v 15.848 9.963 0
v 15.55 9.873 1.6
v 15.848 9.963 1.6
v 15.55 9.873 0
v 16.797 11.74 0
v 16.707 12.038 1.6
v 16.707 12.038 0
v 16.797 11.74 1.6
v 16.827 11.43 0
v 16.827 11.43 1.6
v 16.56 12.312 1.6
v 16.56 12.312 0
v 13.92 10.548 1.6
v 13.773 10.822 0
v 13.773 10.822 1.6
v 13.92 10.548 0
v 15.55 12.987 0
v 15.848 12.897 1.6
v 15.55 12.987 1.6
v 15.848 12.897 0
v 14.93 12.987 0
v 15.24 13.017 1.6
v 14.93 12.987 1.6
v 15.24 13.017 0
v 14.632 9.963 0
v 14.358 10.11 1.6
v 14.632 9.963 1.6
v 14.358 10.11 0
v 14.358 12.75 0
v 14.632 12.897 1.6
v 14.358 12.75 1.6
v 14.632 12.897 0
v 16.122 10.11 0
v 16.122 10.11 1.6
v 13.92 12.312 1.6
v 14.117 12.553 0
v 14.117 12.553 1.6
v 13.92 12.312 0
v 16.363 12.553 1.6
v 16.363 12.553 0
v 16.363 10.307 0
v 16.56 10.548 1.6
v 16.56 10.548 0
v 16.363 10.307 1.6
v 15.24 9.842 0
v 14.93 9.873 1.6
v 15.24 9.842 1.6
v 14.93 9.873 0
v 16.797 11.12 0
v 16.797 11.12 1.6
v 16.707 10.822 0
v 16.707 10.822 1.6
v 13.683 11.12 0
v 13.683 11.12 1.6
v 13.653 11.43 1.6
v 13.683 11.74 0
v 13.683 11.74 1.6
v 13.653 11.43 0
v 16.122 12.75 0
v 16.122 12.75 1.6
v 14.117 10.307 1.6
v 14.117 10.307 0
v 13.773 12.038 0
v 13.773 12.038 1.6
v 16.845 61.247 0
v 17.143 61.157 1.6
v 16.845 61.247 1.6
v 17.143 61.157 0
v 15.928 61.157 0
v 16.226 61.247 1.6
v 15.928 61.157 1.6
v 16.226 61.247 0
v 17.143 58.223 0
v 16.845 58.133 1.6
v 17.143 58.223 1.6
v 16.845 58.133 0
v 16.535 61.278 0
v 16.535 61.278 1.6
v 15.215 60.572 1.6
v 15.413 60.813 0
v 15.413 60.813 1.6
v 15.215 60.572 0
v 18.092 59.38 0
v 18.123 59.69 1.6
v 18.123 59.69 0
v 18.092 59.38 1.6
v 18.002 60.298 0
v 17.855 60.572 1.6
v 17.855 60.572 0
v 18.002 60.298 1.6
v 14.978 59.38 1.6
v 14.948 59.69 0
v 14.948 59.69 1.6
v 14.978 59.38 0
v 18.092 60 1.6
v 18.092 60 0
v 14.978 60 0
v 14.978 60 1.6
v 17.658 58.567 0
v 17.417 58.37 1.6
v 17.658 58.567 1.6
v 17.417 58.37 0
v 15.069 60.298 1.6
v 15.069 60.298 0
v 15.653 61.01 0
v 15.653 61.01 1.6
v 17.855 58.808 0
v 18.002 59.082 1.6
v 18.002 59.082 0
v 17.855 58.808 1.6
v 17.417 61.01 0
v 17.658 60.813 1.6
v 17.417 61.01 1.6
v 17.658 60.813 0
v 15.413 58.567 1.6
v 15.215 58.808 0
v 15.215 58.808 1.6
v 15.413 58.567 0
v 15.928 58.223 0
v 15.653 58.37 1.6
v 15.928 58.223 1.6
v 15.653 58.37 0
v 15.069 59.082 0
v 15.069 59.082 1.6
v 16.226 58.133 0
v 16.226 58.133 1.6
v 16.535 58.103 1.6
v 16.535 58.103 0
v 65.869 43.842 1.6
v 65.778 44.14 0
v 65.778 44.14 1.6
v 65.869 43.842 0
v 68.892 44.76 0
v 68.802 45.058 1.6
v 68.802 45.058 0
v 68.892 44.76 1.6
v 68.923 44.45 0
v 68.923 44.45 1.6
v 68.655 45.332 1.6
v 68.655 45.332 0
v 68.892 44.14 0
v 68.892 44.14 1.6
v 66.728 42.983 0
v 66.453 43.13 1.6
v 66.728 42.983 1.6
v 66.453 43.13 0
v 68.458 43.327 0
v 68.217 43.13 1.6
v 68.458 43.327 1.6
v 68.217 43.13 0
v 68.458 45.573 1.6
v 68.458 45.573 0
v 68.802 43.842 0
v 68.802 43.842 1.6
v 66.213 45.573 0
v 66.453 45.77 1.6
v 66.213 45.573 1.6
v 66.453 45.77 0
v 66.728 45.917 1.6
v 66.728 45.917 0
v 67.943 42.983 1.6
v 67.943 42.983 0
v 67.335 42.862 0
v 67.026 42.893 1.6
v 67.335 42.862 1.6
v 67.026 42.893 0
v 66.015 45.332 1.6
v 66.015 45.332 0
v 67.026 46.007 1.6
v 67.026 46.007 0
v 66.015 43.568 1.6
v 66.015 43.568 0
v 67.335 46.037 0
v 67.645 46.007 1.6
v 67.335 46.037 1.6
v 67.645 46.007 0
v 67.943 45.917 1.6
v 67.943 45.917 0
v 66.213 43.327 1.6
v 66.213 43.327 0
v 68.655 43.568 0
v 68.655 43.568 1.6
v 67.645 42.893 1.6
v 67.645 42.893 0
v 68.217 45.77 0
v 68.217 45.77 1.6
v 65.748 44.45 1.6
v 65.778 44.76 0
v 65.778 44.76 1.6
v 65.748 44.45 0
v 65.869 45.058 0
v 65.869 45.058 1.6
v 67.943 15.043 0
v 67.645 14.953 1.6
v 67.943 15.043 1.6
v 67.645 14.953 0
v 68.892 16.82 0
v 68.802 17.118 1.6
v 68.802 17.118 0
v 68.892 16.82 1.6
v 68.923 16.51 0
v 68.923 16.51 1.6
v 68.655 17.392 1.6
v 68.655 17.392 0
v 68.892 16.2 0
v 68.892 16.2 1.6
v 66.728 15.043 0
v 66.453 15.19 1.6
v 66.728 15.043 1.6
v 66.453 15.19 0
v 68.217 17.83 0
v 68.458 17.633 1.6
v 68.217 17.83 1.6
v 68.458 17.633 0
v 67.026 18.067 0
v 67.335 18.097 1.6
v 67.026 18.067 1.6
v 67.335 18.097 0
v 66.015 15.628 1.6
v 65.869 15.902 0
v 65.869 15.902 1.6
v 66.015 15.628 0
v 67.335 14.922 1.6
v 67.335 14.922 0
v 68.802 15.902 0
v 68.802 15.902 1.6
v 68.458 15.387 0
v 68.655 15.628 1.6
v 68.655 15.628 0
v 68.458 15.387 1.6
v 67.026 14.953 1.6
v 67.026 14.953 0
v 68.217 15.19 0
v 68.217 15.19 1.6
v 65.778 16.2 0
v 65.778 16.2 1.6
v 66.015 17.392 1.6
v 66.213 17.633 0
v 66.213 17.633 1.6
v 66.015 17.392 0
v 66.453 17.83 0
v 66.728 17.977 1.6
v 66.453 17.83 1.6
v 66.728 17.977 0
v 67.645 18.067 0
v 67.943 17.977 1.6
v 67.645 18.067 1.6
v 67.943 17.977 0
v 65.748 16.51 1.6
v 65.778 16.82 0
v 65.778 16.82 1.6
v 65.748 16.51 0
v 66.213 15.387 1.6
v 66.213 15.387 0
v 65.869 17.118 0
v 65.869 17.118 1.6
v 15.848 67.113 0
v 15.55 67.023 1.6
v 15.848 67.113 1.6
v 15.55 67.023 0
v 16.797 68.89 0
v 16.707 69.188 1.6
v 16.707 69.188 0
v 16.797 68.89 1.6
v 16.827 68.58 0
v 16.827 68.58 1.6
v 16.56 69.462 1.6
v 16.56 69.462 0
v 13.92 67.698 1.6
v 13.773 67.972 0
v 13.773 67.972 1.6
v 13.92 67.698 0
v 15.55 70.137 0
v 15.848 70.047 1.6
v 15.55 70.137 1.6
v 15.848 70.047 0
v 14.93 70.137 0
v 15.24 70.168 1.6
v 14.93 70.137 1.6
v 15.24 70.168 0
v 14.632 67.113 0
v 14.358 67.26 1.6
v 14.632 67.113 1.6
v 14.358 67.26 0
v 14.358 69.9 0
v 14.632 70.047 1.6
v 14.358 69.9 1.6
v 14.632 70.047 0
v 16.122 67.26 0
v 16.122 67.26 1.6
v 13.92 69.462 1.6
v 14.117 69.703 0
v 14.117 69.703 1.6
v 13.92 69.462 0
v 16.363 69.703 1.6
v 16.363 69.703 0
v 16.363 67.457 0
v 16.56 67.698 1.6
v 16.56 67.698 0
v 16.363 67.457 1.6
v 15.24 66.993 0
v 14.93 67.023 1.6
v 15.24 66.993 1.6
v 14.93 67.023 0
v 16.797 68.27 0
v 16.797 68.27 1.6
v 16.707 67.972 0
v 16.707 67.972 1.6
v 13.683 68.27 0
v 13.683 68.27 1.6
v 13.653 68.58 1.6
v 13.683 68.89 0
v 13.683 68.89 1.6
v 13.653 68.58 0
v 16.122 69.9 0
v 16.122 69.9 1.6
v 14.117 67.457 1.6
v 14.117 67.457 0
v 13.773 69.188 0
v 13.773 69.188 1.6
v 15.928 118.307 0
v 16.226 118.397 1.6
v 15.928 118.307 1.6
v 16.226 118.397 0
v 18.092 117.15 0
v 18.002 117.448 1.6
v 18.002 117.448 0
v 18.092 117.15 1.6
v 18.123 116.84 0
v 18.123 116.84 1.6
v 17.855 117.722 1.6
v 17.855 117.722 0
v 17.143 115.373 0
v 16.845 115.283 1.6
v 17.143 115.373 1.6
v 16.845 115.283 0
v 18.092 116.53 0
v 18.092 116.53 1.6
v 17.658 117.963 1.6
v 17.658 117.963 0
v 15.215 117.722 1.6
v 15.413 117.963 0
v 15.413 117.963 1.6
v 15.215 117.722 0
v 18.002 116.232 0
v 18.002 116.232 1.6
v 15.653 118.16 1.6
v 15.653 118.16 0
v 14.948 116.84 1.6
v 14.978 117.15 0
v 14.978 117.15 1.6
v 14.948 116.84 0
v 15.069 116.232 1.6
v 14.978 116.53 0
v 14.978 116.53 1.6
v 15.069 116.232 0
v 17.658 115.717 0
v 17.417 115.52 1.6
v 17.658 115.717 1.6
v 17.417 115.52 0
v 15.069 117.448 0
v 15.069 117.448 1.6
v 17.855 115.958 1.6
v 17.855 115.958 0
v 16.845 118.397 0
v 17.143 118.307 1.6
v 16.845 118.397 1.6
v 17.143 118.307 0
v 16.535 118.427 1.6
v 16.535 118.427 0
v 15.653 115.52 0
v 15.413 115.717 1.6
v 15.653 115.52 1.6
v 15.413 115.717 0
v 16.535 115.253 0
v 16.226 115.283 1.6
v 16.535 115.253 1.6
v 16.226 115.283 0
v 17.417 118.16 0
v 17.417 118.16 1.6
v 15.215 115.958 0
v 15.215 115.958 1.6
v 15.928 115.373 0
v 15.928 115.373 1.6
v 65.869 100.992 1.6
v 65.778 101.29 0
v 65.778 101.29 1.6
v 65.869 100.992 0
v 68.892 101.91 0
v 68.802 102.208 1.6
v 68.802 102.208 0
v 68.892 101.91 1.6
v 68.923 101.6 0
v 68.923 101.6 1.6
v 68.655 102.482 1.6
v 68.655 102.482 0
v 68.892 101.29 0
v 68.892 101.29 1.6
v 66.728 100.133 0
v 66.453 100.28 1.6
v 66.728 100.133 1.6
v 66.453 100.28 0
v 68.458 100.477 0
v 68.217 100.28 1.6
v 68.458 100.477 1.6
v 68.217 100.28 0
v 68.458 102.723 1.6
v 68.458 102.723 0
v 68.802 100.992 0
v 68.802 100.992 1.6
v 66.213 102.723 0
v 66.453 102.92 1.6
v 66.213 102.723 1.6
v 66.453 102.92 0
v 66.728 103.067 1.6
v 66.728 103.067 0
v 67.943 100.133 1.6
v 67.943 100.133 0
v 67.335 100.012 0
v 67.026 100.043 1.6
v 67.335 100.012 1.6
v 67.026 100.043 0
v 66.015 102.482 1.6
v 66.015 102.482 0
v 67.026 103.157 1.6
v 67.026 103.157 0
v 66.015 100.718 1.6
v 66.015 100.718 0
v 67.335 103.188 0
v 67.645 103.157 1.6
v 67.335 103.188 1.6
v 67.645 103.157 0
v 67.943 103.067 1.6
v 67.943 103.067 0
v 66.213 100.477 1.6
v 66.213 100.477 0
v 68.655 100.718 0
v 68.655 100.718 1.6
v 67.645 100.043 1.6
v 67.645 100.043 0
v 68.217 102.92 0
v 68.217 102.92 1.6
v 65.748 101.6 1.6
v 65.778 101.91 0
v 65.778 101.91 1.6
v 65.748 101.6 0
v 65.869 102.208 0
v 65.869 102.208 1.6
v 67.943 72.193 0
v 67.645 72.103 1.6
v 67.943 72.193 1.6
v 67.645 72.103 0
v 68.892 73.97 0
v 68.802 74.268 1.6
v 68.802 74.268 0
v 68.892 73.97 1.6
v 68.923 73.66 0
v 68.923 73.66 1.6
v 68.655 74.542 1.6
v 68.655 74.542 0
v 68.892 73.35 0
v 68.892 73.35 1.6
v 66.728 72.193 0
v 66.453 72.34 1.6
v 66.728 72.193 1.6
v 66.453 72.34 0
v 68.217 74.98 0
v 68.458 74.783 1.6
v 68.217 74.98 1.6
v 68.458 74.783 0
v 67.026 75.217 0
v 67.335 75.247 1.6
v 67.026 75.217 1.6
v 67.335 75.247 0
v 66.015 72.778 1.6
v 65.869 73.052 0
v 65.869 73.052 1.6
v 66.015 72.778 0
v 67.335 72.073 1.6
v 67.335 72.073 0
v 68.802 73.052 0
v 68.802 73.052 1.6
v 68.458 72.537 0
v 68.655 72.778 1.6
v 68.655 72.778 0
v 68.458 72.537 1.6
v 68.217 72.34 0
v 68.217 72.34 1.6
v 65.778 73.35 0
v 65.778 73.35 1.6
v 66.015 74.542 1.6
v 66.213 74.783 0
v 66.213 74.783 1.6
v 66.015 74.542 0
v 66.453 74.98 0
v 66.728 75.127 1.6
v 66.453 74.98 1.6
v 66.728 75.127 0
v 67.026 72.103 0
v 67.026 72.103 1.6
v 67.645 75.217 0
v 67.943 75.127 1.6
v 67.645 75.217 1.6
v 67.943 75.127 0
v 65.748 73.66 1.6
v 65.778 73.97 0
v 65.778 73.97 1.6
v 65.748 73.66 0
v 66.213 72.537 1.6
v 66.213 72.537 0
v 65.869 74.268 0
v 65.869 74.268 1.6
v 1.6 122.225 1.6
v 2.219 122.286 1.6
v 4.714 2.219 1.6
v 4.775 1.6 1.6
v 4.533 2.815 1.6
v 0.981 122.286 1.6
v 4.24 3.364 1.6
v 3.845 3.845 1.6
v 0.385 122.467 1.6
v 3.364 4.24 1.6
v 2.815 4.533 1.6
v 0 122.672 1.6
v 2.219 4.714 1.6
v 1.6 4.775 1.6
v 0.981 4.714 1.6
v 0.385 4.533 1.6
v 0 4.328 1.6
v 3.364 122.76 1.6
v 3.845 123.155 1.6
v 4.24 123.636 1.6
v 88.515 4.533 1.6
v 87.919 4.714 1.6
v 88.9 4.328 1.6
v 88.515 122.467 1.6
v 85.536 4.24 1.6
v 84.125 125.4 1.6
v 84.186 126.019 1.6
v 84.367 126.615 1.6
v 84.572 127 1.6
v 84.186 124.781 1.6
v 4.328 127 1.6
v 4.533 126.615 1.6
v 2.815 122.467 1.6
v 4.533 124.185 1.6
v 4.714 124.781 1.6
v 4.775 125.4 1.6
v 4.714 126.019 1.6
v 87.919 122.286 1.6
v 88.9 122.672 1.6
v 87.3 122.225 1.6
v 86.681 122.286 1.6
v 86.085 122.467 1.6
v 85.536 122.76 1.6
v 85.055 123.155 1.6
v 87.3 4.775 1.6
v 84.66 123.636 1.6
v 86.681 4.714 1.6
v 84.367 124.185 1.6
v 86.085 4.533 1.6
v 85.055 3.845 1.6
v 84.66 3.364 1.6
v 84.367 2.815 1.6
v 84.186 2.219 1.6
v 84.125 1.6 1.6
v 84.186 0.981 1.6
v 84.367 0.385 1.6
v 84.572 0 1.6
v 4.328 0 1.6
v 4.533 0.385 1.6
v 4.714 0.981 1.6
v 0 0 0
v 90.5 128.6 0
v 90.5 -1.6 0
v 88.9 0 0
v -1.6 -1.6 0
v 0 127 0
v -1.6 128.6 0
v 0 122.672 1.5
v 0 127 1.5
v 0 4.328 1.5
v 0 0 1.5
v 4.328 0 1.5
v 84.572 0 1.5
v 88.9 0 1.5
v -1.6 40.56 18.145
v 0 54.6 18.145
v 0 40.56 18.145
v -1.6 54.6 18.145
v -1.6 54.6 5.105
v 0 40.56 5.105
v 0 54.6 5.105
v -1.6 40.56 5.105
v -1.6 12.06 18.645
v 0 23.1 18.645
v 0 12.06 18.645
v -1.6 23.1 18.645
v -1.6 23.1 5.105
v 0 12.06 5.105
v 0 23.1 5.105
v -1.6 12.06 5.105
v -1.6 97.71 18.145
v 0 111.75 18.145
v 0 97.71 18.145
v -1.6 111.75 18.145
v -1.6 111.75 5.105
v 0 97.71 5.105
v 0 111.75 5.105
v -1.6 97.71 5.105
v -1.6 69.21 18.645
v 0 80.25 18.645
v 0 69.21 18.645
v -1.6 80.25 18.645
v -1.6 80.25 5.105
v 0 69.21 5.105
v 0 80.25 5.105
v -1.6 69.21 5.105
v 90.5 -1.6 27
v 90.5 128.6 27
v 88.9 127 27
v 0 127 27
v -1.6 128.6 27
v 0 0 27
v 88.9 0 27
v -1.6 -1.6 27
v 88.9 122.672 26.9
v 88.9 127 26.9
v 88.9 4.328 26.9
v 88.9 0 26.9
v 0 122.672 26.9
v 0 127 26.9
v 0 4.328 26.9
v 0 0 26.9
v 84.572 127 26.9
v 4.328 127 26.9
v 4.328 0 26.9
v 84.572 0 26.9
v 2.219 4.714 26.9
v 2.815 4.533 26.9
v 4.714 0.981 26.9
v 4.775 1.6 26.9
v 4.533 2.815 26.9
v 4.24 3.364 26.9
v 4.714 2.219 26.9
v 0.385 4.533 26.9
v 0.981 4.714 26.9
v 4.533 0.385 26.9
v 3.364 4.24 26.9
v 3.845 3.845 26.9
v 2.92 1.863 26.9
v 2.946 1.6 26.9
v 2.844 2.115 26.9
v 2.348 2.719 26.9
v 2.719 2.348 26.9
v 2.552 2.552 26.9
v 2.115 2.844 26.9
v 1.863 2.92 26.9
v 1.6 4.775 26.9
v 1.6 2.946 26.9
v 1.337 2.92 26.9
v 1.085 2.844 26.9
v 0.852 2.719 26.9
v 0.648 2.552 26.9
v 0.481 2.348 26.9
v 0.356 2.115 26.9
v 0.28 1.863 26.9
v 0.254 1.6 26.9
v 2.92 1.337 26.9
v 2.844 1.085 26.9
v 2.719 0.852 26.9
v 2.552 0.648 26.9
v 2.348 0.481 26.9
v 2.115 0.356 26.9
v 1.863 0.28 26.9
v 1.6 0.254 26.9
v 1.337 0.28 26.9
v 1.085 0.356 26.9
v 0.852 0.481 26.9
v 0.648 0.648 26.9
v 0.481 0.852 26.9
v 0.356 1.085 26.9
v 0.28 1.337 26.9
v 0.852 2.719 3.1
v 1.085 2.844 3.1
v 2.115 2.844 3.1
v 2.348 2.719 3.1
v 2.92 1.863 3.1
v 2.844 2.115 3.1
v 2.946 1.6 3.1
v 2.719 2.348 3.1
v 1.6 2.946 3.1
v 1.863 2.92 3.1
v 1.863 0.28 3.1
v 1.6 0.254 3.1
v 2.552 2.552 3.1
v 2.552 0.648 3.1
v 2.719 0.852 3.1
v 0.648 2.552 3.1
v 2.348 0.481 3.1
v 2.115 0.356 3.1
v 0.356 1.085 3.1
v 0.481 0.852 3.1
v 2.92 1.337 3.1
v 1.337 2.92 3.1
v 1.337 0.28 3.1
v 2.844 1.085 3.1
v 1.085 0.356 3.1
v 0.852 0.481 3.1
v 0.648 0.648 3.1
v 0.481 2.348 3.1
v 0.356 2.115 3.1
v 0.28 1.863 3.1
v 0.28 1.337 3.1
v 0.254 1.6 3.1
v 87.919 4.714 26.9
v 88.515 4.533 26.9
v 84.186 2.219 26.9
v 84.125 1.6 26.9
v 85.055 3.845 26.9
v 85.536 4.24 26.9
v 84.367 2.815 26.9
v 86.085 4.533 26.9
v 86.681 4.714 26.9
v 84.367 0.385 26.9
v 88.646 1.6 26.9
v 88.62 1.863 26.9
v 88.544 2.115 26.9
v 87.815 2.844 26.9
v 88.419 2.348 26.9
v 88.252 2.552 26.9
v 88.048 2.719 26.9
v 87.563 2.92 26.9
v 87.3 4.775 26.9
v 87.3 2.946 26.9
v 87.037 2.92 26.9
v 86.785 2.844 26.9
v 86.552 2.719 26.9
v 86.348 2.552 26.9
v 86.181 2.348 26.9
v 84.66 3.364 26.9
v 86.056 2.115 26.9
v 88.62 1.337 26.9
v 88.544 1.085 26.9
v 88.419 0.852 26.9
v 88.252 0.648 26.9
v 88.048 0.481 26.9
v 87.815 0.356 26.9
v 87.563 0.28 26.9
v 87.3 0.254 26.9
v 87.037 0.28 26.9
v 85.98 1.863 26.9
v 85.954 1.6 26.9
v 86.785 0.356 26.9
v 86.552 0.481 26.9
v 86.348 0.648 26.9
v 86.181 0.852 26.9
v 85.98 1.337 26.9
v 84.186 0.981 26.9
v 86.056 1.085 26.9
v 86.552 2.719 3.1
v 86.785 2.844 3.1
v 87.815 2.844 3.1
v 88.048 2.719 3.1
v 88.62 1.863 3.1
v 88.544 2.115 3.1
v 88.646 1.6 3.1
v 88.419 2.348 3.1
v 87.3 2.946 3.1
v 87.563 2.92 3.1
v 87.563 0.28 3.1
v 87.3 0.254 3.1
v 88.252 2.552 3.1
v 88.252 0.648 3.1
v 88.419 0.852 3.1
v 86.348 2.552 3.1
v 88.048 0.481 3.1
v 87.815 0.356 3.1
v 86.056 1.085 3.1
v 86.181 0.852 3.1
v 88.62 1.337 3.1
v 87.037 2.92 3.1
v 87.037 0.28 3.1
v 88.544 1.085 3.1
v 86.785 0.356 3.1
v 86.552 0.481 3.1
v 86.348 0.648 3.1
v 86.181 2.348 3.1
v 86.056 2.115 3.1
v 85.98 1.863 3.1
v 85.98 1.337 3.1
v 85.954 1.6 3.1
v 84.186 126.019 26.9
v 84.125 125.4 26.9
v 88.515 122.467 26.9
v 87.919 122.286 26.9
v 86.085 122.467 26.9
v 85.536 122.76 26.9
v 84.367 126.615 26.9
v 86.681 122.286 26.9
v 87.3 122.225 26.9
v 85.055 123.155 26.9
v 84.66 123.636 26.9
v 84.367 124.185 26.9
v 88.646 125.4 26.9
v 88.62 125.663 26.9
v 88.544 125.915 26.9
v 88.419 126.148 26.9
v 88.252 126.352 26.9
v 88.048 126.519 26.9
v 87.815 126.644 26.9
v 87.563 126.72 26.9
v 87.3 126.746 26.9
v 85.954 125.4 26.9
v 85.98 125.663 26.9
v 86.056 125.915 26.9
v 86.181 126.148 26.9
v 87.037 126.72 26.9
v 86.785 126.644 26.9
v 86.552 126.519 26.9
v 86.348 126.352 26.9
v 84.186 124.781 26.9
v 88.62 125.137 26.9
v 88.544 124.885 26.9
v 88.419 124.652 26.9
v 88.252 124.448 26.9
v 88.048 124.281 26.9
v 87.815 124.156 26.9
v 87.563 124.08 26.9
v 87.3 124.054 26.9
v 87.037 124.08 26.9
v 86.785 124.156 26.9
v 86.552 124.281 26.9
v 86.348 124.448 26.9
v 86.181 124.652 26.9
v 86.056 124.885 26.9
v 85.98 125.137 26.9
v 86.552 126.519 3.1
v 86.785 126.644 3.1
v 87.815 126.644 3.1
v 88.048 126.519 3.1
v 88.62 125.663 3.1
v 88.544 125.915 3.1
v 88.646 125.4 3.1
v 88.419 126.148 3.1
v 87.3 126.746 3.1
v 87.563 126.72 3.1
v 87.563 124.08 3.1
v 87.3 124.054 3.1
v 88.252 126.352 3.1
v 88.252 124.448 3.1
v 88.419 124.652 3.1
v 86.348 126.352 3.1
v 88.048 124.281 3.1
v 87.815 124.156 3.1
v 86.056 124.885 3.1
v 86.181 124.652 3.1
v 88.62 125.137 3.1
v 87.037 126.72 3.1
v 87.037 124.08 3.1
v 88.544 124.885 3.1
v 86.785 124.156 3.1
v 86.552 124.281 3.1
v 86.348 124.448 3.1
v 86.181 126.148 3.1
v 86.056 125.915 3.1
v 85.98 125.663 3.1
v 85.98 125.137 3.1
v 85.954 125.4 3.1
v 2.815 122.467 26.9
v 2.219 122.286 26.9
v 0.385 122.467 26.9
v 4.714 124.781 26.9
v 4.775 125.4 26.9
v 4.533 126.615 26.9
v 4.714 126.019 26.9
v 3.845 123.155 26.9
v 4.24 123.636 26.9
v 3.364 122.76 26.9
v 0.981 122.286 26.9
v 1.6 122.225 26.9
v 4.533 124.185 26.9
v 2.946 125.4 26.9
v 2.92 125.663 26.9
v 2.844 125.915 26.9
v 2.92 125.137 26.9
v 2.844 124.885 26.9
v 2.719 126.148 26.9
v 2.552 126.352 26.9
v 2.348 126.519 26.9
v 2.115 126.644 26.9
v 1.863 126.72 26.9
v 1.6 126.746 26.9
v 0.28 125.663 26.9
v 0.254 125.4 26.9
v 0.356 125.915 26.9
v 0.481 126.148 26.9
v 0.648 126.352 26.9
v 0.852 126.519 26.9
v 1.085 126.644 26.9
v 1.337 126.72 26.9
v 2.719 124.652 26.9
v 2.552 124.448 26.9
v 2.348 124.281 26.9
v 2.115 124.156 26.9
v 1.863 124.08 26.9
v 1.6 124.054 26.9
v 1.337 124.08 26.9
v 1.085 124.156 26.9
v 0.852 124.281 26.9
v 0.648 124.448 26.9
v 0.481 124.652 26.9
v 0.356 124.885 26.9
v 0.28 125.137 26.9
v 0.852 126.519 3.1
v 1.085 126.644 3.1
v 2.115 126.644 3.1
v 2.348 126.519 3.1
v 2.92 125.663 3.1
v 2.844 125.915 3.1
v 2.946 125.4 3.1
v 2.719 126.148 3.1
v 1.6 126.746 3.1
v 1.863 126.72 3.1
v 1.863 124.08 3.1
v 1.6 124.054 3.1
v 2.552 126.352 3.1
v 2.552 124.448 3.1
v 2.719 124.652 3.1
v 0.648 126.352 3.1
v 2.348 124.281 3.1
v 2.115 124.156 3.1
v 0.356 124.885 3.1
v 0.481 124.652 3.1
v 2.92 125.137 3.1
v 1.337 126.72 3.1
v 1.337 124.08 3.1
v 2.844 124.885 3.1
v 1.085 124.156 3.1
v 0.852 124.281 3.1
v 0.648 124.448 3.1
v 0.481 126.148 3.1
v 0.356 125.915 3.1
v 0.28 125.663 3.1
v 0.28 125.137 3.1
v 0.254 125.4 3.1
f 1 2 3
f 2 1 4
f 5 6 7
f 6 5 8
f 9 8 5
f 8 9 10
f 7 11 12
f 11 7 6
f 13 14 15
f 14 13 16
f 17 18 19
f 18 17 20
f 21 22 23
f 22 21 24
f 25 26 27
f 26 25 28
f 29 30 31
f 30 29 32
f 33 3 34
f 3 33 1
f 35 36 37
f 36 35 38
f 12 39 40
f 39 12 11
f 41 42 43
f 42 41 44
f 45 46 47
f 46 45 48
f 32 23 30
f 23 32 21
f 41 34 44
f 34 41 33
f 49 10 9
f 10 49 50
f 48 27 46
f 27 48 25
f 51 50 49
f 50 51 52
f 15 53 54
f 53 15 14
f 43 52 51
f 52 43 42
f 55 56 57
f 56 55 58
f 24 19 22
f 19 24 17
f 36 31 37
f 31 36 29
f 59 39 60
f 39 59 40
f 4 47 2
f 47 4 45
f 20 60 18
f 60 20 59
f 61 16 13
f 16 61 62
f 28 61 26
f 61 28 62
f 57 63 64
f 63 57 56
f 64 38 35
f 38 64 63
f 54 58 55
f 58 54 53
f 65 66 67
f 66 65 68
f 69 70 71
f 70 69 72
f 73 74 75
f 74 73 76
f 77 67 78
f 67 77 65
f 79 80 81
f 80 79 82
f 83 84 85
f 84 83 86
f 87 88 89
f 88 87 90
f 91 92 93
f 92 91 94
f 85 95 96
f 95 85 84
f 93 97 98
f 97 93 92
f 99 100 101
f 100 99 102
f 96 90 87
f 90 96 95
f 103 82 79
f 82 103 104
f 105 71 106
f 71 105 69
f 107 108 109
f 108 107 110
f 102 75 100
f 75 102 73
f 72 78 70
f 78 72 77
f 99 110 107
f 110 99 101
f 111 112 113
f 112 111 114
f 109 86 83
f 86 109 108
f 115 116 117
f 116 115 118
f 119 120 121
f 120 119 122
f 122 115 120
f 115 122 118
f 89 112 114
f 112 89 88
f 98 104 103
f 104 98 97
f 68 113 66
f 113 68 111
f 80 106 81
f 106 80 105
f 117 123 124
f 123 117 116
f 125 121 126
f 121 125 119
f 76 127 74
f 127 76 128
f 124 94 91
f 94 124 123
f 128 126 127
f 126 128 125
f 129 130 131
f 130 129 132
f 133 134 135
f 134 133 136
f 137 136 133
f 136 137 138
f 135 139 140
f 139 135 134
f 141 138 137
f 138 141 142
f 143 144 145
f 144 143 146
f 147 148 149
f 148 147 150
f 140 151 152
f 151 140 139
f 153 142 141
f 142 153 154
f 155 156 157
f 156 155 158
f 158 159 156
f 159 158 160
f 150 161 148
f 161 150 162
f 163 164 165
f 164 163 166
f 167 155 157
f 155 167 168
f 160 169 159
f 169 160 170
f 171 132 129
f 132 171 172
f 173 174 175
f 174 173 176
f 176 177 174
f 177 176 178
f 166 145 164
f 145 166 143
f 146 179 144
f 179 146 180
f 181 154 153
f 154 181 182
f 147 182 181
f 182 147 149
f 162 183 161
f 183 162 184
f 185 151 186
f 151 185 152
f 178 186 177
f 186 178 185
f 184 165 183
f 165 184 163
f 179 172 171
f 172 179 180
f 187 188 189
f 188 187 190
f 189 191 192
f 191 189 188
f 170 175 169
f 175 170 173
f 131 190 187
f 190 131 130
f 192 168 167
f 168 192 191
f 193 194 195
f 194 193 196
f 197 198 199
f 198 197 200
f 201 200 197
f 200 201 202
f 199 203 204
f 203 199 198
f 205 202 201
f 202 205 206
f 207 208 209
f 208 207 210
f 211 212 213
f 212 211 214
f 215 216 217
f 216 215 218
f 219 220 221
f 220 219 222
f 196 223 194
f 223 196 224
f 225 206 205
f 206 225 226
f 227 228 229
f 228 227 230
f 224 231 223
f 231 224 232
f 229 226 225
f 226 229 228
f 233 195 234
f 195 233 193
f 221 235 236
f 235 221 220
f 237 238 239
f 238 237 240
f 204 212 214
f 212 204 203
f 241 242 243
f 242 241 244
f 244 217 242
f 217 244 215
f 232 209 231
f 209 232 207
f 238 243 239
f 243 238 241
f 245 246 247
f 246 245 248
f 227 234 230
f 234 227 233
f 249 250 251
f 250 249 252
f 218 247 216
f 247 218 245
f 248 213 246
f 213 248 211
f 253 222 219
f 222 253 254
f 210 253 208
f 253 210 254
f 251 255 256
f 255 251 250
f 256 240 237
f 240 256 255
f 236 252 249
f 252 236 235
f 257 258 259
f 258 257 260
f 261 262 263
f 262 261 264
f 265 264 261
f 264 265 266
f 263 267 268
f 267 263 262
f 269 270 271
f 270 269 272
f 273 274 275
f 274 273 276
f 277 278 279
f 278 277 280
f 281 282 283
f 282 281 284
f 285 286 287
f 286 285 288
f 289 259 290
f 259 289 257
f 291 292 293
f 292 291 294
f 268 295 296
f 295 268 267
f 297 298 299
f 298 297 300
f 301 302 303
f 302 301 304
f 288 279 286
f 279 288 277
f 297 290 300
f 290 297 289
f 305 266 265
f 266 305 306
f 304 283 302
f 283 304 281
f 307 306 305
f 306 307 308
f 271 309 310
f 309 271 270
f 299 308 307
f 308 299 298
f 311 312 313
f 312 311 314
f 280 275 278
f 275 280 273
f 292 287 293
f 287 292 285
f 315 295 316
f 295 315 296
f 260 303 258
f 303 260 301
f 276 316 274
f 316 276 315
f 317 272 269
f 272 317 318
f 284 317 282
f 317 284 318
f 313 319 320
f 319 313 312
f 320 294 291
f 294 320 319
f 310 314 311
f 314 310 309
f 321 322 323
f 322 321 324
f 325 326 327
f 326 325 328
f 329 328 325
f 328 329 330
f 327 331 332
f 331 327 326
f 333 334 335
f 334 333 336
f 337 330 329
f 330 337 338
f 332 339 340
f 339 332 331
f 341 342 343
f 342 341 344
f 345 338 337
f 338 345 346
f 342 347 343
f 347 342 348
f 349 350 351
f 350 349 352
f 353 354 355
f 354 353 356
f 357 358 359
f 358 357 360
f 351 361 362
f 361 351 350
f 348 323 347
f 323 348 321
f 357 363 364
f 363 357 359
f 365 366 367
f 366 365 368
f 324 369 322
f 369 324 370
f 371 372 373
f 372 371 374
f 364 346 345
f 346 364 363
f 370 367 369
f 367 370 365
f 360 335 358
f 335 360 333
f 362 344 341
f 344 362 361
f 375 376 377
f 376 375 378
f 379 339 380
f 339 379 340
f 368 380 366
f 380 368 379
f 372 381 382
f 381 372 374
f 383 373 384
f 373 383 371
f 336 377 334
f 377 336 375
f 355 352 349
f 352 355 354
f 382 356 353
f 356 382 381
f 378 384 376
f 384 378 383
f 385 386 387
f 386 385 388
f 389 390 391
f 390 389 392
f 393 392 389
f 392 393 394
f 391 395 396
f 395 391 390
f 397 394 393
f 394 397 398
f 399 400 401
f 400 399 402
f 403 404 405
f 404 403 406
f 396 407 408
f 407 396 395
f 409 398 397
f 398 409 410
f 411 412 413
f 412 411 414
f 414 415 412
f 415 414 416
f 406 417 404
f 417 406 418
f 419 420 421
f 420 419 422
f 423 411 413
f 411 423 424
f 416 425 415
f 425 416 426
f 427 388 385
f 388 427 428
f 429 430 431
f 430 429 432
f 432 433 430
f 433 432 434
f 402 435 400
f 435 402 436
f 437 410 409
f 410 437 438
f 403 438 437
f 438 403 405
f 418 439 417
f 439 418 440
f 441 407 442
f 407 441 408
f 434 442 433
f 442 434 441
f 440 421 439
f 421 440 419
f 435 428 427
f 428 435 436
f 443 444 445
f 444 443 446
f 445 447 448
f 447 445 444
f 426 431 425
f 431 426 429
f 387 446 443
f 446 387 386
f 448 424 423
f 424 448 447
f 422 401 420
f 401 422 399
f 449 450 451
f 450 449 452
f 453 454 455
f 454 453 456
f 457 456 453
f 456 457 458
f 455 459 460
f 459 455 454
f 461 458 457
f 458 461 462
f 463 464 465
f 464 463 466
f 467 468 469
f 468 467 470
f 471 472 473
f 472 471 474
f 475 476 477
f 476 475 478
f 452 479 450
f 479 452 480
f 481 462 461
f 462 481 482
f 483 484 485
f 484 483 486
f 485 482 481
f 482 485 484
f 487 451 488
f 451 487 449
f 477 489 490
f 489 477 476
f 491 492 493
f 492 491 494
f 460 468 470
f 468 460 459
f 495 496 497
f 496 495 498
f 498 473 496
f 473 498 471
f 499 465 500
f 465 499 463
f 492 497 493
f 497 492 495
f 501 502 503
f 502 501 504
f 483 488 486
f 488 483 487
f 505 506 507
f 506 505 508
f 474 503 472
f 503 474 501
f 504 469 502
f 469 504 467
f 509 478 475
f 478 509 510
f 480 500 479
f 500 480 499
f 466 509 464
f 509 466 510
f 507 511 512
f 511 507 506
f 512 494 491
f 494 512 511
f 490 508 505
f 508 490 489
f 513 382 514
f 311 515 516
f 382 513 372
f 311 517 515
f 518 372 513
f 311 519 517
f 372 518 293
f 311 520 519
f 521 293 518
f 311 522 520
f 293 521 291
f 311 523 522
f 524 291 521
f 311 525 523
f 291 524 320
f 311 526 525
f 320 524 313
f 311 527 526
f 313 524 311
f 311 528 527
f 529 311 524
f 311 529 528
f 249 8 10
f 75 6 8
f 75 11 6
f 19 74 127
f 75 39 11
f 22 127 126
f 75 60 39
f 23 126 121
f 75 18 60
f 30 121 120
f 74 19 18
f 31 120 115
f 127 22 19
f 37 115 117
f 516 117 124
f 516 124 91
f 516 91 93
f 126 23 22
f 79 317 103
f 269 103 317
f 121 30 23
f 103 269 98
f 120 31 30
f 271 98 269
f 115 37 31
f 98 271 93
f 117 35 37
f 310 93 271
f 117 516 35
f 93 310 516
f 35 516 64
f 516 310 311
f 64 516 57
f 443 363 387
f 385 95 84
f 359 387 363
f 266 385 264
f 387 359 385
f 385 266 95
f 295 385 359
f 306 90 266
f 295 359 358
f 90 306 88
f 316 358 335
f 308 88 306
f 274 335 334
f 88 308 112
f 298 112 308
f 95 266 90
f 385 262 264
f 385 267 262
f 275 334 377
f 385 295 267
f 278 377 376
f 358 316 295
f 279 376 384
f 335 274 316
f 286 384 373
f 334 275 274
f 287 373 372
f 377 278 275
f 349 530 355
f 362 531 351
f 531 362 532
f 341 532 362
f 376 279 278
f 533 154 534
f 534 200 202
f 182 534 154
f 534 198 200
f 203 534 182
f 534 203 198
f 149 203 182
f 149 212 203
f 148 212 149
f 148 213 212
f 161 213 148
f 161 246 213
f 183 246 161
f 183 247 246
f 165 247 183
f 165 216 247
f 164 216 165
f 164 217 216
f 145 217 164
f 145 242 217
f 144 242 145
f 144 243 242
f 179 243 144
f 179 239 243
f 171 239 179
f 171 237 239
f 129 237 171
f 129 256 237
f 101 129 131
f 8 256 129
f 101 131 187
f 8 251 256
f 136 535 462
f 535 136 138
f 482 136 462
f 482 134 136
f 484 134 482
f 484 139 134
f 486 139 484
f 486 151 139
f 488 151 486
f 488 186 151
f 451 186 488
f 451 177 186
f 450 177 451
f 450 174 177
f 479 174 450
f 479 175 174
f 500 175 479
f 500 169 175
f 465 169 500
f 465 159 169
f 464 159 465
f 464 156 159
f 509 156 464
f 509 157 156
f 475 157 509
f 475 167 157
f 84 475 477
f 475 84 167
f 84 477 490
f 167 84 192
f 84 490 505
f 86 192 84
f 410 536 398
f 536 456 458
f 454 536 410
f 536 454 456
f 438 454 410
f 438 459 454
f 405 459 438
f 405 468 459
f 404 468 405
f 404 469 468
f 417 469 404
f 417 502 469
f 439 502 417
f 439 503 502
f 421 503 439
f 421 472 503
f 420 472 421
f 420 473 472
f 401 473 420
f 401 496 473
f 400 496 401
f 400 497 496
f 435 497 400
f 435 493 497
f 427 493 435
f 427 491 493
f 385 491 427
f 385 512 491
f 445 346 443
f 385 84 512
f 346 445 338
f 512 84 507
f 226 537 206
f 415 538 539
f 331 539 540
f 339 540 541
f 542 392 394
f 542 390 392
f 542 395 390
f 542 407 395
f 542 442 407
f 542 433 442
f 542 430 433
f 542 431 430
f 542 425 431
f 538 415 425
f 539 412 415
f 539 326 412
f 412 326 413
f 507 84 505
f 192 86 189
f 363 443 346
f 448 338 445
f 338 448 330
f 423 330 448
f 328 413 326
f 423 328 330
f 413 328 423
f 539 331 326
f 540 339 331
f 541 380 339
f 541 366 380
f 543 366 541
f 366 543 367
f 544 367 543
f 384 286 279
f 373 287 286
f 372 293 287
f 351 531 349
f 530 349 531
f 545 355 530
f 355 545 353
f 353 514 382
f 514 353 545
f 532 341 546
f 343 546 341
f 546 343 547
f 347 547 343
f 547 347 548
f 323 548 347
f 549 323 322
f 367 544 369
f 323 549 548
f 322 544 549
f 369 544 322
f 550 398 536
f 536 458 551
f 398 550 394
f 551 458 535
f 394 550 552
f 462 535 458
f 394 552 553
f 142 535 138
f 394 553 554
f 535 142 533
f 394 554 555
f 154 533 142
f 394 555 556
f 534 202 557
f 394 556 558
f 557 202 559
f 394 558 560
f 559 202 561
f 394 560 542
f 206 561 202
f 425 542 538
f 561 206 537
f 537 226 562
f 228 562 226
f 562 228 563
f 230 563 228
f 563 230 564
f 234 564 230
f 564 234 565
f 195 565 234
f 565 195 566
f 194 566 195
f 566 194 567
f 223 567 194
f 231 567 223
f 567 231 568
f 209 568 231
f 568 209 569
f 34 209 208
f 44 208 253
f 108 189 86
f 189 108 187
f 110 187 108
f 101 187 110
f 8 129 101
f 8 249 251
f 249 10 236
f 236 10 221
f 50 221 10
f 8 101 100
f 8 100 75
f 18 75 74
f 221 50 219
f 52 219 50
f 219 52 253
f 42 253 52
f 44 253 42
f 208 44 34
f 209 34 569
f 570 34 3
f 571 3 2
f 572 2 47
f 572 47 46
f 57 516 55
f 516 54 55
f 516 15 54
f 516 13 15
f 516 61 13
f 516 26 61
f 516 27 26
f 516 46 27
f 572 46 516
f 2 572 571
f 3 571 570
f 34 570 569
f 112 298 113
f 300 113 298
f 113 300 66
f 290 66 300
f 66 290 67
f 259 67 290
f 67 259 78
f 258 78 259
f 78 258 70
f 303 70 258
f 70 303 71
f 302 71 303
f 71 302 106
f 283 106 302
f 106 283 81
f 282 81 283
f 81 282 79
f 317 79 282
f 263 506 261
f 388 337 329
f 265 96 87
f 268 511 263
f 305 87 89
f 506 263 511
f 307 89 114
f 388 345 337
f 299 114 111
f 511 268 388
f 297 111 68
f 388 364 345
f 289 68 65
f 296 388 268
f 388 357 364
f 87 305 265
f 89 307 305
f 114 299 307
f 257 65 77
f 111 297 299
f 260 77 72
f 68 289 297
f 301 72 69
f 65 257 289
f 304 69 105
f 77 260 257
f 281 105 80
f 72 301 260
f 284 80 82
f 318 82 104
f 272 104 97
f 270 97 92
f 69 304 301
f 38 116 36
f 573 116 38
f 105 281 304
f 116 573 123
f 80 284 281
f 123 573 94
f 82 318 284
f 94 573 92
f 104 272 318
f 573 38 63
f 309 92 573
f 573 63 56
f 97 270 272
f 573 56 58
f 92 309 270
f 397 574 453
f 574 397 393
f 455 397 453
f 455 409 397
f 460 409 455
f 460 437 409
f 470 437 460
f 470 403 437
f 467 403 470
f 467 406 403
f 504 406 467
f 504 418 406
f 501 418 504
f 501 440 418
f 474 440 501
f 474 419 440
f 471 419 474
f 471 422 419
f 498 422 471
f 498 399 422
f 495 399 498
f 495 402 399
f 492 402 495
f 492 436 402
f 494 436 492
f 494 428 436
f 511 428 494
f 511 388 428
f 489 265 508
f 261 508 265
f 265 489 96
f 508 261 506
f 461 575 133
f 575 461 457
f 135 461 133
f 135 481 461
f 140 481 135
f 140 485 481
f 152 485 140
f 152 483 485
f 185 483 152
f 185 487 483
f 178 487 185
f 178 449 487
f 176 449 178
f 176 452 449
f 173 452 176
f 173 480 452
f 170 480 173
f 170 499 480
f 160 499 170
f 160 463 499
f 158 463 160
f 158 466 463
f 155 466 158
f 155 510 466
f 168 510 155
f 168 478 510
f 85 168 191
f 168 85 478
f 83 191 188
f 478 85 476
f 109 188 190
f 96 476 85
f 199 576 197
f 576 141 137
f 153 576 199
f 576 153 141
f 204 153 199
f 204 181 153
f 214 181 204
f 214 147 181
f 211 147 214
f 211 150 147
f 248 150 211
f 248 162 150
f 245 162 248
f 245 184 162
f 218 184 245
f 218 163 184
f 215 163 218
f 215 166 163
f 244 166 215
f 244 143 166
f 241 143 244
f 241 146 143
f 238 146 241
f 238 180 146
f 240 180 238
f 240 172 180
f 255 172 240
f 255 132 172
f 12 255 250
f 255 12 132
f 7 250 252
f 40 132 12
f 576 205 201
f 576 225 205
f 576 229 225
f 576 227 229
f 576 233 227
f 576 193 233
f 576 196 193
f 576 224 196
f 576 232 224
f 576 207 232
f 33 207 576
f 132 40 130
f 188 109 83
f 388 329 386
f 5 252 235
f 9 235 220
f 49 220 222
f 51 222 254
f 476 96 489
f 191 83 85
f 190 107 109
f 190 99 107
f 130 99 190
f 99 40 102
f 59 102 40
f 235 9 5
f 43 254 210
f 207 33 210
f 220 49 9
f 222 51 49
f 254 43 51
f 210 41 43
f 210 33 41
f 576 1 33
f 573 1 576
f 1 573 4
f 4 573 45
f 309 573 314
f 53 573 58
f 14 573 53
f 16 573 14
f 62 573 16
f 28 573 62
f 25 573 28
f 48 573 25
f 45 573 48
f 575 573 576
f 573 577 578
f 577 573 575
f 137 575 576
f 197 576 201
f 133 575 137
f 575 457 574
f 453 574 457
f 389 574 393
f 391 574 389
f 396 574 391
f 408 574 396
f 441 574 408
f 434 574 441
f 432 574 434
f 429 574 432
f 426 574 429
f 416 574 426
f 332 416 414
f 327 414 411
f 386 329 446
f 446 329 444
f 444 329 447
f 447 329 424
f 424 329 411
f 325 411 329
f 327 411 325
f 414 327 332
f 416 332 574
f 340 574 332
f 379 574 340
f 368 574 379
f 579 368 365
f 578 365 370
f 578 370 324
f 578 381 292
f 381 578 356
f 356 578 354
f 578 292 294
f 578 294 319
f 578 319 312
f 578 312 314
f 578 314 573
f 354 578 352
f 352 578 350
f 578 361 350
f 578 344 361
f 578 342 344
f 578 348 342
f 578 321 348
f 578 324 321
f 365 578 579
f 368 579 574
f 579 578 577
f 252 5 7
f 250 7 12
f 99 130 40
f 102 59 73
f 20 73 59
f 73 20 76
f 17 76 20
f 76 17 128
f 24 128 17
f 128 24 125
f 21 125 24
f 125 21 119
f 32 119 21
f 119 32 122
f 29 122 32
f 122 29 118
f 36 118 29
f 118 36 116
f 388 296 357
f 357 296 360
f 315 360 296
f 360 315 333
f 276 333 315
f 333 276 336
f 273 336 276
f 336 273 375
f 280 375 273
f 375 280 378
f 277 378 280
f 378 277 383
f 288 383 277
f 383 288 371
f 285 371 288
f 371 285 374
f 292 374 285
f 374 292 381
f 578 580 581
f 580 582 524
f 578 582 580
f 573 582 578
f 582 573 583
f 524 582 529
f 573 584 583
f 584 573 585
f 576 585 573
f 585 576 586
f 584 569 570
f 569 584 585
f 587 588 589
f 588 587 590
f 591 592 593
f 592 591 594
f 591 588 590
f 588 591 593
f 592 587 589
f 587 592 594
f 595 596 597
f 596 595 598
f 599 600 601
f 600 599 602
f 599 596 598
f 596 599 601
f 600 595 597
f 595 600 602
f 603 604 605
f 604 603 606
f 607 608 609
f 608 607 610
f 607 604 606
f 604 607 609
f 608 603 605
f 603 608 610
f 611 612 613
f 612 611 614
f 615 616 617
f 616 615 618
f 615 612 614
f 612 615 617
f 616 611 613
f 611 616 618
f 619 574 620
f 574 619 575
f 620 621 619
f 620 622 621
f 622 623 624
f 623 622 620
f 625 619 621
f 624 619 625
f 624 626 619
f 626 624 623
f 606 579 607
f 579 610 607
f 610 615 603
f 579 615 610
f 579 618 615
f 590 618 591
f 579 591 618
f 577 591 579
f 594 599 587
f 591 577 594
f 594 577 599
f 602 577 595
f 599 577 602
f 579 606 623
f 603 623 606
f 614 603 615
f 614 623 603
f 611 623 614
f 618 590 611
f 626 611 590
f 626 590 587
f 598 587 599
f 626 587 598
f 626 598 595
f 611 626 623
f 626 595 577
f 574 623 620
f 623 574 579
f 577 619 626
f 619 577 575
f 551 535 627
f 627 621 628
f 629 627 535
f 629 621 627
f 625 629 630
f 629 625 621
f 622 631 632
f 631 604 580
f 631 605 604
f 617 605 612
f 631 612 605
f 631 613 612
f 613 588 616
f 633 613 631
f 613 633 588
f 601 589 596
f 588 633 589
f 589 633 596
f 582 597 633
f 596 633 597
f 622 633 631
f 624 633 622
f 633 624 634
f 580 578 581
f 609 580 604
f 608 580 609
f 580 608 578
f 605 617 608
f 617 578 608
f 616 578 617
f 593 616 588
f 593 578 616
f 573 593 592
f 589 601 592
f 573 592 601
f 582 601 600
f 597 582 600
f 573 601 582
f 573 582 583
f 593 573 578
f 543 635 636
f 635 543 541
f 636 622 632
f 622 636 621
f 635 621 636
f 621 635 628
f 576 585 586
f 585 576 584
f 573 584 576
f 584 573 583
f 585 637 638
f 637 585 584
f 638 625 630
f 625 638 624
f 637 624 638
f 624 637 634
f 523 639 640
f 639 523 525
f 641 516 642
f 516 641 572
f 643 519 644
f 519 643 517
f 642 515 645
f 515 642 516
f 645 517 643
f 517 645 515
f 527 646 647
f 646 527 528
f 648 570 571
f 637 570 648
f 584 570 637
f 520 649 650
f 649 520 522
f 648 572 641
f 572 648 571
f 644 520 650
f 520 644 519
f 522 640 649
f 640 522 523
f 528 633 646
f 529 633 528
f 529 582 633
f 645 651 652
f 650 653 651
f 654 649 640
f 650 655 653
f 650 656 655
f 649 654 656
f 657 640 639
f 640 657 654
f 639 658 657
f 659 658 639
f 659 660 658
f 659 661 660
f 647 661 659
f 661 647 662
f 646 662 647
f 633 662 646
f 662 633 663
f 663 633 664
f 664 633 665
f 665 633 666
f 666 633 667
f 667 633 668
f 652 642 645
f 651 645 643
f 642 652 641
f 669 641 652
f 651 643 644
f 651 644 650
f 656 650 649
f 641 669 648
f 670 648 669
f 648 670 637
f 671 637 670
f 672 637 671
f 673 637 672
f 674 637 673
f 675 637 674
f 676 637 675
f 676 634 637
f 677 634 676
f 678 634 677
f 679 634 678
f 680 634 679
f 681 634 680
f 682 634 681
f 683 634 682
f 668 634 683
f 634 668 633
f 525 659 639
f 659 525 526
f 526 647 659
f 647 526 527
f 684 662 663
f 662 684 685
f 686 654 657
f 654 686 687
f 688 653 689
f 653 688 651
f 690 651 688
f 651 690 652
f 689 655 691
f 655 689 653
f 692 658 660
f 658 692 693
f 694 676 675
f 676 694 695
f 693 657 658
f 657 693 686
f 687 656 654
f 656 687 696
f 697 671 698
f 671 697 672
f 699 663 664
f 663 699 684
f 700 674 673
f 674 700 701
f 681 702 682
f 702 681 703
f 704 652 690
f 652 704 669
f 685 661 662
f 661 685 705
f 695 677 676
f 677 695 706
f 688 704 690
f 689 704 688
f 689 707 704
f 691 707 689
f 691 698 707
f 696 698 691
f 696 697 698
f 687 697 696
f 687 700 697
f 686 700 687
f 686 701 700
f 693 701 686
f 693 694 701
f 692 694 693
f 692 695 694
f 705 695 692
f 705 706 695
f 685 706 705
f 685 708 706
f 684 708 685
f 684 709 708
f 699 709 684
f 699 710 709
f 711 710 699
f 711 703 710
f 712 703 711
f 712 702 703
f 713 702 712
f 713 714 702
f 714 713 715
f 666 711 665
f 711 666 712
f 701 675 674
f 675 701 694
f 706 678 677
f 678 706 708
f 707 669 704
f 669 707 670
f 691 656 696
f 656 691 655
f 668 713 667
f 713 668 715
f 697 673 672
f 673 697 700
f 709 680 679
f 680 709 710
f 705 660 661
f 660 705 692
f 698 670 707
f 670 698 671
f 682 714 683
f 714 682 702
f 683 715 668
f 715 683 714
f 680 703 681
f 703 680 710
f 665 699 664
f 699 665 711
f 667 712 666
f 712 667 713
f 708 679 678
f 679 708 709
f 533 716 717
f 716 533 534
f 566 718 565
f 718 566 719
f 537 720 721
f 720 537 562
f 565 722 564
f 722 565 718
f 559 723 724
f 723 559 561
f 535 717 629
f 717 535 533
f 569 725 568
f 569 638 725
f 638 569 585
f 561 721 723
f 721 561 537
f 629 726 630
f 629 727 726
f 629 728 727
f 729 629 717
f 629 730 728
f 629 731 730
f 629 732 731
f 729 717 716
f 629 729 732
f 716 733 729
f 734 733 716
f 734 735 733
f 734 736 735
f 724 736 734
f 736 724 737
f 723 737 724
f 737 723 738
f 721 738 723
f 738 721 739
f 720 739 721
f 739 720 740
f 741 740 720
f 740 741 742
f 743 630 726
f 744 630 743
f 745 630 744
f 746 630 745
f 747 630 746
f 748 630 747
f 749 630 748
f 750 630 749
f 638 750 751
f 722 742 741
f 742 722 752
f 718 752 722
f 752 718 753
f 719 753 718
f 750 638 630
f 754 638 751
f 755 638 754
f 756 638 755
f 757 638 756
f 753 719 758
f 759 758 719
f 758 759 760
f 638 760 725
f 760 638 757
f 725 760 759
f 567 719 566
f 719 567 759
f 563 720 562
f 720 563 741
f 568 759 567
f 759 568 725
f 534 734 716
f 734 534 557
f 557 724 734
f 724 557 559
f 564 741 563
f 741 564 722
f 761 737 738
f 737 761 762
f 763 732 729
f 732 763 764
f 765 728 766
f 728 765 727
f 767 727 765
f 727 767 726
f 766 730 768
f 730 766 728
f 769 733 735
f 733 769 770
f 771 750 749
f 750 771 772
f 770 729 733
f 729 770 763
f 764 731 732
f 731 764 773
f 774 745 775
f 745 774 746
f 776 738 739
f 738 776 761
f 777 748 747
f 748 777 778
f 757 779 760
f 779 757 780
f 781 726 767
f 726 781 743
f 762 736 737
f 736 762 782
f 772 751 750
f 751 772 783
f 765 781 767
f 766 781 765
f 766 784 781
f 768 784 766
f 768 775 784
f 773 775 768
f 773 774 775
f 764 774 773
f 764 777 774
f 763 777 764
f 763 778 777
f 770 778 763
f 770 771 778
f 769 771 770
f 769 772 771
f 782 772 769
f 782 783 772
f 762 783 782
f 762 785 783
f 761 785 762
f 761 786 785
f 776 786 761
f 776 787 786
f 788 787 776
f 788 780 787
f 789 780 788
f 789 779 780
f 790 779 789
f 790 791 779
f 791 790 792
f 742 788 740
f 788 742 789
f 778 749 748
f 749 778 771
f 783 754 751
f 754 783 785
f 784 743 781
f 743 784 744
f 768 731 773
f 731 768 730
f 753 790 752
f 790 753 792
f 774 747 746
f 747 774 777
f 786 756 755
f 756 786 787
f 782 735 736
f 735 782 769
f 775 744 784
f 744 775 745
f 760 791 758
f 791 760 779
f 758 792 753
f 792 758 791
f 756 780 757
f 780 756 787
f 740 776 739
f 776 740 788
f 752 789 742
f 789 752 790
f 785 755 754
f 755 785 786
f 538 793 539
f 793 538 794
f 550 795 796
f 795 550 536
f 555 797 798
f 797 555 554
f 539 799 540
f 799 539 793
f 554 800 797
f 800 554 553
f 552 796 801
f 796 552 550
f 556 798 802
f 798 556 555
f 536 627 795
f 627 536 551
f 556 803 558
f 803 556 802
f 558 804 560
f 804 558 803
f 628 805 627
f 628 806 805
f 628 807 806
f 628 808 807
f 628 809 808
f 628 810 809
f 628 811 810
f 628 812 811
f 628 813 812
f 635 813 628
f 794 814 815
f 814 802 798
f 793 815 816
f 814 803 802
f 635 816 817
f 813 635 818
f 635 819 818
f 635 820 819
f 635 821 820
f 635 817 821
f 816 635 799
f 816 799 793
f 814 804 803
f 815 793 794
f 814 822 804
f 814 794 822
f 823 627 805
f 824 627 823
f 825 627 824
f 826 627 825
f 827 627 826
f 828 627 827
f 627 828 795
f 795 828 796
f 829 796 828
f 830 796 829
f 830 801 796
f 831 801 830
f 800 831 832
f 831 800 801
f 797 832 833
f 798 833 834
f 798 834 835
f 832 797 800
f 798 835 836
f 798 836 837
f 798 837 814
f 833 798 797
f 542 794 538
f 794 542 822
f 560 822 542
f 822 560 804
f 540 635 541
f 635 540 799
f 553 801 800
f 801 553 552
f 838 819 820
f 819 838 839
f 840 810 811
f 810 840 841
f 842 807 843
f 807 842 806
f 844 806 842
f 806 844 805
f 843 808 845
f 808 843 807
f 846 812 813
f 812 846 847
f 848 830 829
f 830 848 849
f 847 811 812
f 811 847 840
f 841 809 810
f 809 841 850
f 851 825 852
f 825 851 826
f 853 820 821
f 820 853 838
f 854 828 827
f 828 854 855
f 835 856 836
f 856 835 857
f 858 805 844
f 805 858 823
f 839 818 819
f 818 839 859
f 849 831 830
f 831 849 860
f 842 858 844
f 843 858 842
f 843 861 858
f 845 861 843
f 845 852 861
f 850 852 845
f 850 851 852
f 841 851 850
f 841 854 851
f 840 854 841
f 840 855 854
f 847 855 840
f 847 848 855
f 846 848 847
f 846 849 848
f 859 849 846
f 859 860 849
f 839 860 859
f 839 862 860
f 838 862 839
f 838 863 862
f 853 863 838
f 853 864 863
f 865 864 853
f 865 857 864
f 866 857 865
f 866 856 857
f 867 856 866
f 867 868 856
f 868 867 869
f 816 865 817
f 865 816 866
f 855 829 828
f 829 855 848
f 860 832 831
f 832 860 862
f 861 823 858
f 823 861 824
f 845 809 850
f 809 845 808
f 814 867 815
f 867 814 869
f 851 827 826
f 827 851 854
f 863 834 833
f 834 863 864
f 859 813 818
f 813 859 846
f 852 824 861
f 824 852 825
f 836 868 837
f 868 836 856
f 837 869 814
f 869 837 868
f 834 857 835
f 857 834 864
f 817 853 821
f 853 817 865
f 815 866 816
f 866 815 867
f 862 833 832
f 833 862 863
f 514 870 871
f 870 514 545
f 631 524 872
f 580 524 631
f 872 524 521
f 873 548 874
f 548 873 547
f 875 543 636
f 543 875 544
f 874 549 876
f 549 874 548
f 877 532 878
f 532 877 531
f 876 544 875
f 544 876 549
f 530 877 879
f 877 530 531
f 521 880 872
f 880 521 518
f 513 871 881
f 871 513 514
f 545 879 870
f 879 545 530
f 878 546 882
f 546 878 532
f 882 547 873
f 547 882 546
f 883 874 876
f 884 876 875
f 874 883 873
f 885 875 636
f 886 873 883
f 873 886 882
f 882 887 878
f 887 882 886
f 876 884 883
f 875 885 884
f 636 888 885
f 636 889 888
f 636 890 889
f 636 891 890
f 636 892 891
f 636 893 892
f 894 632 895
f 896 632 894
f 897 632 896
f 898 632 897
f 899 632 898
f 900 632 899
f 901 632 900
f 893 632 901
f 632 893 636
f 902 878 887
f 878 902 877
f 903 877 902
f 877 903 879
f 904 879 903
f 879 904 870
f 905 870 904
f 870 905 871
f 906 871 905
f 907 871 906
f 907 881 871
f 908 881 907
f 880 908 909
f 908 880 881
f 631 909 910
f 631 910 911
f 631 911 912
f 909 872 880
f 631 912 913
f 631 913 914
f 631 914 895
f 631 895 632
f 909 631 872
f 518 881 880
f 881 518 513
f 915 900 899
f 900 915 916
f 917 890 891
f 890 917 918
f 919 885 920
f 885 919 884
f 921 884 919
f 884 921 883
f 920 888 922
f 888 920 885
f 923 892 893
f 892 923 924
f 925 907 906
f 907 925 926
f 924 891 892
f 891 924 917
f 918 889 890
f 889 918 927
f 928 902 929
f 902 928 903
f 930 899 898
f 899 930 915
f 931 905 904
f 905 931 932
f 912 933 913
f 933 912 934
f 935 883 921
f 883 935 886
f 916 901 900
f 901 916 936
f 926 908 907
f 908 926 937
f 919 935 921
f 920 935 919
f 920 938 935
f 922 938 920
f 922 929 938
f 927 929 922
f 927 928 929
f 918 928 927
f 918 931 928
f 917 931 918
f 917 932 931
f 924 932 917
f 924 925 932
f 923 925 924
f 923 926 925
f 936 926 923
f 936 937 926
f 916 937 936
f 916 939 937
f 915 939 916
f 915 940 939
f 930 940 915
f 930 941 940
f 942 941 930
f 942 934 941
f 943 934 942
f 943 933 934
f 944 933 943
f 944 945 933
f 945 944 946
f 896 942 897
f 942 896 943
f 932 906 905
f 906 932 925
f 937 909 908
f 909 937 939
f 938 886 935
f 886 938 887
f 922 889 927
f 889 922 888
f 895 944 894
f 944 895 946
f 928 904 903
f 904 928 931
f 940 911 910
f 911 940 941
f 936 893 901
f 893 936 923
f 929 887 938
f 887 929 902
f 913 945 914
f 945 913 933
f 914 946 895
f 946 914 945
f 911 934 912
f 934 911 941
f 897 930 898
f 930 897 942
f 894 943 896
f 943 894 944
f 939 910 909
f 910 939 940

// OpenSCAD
//
// Arduino box, in mm
//

$fn=32;
e=0.1;
mm=25.4;


ardu_x = 0.05*mm;
ardu_y = 0.35*mm;
ardu_dy = 2.25*mm;
ardu_so = 0.125*mm;

flange_w = 0.5*mm;
fh_off = 0.25*mm;
flange_hole_dia = 0.15*mm;
ardu_hole_dia = 0.125*mm;

cavity_wid = 3.5*mm;
cavity_len = 5*mm;
cavity_hgt = 1*mm;
// cavity_hgt = 0.25*mm;

thk = 1.6;

// flange_w = 0.25*mm;
// fh_off = 0.125*mm;
// flange_hole_dia = 0.1*mm;
// ardu_hole_dia = 0.125*mm;
// 
// cavity_wid = 1*mm;
// cavity_len = 1*mm;
// cavity_hgt = 0.5*mm;
// thk = .063*mm;

module hole_at( x, y, d) {
  translate( [x, y, -e])
    cylinder( h=3*mm, d=d);
}

// arduino/shield mounting holes
module ardu_holes( x, y) {
  translate( [x, y, 0]) {
    hole_at( 0.55*mm,  0.1*mm, ardu_hole_dia);
    hole_at( 0.601*mm, 2*mm, ardu_hole_dia);
    hole_at( 2.601*mm, 1.4*mm, ardu_hole_dia);
    hole_at( 2.601*mm, 0.3*mm, ardu_hole_dia);
  }
}

// bottom with mounting holes
module bottom() {
  difference() {
    cube( [cavity_wid, cavity_len, thk]);
    ardu_holes( ardu_x, ardu_y);
    ardu_holes( ardu_x, ardu_y+2.25*mm);
  }
}

// clearance around cutouts
spc = 0.05*mm;

module ardu_cutouts() {
  // USB connector
  translate( [-6, 32+spc, pcb_thk-spc])
    cube( [16, 11.5+2*spc, 10.5+2*spc]);
  // power barrel jack
  color("black") {
    translate( [-6, 3.5+spc, pcb_thk-spc])
      cube( [10, 8.5+2*spc, 11+2*spc]);
  }
}

module ardu_cuts() {
  translate( [ardu_x, ardu_y, thk+ardu_so]) {
    ardu_cutouts();
    translate( [0, ardu_dy, 0])
      ardu_cutouts();
  }
}



// box with cavity
module box() {
  translate( [-thk, -thk, 0]) {
    difference() {
      cube( [cavity_wid+2*thk, cavity_len+2*thk, cavity_hgt+thk]);
      translate( [thk, thk, -e])
	cube( [cavity_wid, cavity_len, cavity_hgt+2*e+thk]);
      ardu_cuts();
    }
  }
}

// flange
max_wid = cavity_wid+2*flange_w;
max_len = cavity_len+2*flange_w;

module flange() {
  translate( [-flange_w, -flange_w, cavity_hgt]) {
    difference() {
      cube( [max_wid, max_len, thk]);
      translate( [flange_w, flange_w, -e])
	cube( [cavity_wid, cavity_len, thk+2*e]);
      hole_at( fh_off, fh_off, flange_hole_dia);
      hole_at( max_wid-fh_off, fh_off, flange_hole_dia);
      hole_at( fh_off, max_len-fh_off, flange_hole_dia);
      hole_at( max_wid-fh_off, max_len-fh_off, flange_hole_dia);
    }
  }
}

so_dia = 0.25*mm;
so_hol = 0.106*mm;

module so_at(x, y) {
  translate( [x, y, thk-e]) {
    difference() {
      cylinder( d=so_dia, h=cavity_hgt);
      translate( [0, 0, thk])
	cylinder( d=so_hol, h=cavity_hgt);
    }
  }
    
}

module standoffs() {
  so_at( thk, thk);
  so_at( cavity_wid-thk, thk);
  so_at( cavity_wid-thk, cavity_len-thk);
  so_at( thk, cavity_len-thk);
}

pcb_thk = 1.6;

module arduino() {
  color("blue")
    linear_extrude( height=pcb_thk)
      scale( [mm, mm, mm]) import("arduino_outline.dxf");
  // USB connector
  translate( [-6, 32, pcb_thk])
    color("gray") cube( [16, 11.5, 10.5]);
  // power barrel jack
  color("black") {
    translate( [-2, 3.5, pcb_thk])
      cube( [3, 8.5, 11]);
    translate( [0, 7.75, 6])
    rotate( [0, 90, 0])
      cylinder( d=8, h=10);
  }
}

module arduinos() {
  translate( [ardu_x, ardu_y, thk+ardu_so]) {
    arduino();
    translate( [0, ardu_dy, 0])
      arduino();
  }
}

bottom();
box();
standoffs();
// arduinos();

// flange();
